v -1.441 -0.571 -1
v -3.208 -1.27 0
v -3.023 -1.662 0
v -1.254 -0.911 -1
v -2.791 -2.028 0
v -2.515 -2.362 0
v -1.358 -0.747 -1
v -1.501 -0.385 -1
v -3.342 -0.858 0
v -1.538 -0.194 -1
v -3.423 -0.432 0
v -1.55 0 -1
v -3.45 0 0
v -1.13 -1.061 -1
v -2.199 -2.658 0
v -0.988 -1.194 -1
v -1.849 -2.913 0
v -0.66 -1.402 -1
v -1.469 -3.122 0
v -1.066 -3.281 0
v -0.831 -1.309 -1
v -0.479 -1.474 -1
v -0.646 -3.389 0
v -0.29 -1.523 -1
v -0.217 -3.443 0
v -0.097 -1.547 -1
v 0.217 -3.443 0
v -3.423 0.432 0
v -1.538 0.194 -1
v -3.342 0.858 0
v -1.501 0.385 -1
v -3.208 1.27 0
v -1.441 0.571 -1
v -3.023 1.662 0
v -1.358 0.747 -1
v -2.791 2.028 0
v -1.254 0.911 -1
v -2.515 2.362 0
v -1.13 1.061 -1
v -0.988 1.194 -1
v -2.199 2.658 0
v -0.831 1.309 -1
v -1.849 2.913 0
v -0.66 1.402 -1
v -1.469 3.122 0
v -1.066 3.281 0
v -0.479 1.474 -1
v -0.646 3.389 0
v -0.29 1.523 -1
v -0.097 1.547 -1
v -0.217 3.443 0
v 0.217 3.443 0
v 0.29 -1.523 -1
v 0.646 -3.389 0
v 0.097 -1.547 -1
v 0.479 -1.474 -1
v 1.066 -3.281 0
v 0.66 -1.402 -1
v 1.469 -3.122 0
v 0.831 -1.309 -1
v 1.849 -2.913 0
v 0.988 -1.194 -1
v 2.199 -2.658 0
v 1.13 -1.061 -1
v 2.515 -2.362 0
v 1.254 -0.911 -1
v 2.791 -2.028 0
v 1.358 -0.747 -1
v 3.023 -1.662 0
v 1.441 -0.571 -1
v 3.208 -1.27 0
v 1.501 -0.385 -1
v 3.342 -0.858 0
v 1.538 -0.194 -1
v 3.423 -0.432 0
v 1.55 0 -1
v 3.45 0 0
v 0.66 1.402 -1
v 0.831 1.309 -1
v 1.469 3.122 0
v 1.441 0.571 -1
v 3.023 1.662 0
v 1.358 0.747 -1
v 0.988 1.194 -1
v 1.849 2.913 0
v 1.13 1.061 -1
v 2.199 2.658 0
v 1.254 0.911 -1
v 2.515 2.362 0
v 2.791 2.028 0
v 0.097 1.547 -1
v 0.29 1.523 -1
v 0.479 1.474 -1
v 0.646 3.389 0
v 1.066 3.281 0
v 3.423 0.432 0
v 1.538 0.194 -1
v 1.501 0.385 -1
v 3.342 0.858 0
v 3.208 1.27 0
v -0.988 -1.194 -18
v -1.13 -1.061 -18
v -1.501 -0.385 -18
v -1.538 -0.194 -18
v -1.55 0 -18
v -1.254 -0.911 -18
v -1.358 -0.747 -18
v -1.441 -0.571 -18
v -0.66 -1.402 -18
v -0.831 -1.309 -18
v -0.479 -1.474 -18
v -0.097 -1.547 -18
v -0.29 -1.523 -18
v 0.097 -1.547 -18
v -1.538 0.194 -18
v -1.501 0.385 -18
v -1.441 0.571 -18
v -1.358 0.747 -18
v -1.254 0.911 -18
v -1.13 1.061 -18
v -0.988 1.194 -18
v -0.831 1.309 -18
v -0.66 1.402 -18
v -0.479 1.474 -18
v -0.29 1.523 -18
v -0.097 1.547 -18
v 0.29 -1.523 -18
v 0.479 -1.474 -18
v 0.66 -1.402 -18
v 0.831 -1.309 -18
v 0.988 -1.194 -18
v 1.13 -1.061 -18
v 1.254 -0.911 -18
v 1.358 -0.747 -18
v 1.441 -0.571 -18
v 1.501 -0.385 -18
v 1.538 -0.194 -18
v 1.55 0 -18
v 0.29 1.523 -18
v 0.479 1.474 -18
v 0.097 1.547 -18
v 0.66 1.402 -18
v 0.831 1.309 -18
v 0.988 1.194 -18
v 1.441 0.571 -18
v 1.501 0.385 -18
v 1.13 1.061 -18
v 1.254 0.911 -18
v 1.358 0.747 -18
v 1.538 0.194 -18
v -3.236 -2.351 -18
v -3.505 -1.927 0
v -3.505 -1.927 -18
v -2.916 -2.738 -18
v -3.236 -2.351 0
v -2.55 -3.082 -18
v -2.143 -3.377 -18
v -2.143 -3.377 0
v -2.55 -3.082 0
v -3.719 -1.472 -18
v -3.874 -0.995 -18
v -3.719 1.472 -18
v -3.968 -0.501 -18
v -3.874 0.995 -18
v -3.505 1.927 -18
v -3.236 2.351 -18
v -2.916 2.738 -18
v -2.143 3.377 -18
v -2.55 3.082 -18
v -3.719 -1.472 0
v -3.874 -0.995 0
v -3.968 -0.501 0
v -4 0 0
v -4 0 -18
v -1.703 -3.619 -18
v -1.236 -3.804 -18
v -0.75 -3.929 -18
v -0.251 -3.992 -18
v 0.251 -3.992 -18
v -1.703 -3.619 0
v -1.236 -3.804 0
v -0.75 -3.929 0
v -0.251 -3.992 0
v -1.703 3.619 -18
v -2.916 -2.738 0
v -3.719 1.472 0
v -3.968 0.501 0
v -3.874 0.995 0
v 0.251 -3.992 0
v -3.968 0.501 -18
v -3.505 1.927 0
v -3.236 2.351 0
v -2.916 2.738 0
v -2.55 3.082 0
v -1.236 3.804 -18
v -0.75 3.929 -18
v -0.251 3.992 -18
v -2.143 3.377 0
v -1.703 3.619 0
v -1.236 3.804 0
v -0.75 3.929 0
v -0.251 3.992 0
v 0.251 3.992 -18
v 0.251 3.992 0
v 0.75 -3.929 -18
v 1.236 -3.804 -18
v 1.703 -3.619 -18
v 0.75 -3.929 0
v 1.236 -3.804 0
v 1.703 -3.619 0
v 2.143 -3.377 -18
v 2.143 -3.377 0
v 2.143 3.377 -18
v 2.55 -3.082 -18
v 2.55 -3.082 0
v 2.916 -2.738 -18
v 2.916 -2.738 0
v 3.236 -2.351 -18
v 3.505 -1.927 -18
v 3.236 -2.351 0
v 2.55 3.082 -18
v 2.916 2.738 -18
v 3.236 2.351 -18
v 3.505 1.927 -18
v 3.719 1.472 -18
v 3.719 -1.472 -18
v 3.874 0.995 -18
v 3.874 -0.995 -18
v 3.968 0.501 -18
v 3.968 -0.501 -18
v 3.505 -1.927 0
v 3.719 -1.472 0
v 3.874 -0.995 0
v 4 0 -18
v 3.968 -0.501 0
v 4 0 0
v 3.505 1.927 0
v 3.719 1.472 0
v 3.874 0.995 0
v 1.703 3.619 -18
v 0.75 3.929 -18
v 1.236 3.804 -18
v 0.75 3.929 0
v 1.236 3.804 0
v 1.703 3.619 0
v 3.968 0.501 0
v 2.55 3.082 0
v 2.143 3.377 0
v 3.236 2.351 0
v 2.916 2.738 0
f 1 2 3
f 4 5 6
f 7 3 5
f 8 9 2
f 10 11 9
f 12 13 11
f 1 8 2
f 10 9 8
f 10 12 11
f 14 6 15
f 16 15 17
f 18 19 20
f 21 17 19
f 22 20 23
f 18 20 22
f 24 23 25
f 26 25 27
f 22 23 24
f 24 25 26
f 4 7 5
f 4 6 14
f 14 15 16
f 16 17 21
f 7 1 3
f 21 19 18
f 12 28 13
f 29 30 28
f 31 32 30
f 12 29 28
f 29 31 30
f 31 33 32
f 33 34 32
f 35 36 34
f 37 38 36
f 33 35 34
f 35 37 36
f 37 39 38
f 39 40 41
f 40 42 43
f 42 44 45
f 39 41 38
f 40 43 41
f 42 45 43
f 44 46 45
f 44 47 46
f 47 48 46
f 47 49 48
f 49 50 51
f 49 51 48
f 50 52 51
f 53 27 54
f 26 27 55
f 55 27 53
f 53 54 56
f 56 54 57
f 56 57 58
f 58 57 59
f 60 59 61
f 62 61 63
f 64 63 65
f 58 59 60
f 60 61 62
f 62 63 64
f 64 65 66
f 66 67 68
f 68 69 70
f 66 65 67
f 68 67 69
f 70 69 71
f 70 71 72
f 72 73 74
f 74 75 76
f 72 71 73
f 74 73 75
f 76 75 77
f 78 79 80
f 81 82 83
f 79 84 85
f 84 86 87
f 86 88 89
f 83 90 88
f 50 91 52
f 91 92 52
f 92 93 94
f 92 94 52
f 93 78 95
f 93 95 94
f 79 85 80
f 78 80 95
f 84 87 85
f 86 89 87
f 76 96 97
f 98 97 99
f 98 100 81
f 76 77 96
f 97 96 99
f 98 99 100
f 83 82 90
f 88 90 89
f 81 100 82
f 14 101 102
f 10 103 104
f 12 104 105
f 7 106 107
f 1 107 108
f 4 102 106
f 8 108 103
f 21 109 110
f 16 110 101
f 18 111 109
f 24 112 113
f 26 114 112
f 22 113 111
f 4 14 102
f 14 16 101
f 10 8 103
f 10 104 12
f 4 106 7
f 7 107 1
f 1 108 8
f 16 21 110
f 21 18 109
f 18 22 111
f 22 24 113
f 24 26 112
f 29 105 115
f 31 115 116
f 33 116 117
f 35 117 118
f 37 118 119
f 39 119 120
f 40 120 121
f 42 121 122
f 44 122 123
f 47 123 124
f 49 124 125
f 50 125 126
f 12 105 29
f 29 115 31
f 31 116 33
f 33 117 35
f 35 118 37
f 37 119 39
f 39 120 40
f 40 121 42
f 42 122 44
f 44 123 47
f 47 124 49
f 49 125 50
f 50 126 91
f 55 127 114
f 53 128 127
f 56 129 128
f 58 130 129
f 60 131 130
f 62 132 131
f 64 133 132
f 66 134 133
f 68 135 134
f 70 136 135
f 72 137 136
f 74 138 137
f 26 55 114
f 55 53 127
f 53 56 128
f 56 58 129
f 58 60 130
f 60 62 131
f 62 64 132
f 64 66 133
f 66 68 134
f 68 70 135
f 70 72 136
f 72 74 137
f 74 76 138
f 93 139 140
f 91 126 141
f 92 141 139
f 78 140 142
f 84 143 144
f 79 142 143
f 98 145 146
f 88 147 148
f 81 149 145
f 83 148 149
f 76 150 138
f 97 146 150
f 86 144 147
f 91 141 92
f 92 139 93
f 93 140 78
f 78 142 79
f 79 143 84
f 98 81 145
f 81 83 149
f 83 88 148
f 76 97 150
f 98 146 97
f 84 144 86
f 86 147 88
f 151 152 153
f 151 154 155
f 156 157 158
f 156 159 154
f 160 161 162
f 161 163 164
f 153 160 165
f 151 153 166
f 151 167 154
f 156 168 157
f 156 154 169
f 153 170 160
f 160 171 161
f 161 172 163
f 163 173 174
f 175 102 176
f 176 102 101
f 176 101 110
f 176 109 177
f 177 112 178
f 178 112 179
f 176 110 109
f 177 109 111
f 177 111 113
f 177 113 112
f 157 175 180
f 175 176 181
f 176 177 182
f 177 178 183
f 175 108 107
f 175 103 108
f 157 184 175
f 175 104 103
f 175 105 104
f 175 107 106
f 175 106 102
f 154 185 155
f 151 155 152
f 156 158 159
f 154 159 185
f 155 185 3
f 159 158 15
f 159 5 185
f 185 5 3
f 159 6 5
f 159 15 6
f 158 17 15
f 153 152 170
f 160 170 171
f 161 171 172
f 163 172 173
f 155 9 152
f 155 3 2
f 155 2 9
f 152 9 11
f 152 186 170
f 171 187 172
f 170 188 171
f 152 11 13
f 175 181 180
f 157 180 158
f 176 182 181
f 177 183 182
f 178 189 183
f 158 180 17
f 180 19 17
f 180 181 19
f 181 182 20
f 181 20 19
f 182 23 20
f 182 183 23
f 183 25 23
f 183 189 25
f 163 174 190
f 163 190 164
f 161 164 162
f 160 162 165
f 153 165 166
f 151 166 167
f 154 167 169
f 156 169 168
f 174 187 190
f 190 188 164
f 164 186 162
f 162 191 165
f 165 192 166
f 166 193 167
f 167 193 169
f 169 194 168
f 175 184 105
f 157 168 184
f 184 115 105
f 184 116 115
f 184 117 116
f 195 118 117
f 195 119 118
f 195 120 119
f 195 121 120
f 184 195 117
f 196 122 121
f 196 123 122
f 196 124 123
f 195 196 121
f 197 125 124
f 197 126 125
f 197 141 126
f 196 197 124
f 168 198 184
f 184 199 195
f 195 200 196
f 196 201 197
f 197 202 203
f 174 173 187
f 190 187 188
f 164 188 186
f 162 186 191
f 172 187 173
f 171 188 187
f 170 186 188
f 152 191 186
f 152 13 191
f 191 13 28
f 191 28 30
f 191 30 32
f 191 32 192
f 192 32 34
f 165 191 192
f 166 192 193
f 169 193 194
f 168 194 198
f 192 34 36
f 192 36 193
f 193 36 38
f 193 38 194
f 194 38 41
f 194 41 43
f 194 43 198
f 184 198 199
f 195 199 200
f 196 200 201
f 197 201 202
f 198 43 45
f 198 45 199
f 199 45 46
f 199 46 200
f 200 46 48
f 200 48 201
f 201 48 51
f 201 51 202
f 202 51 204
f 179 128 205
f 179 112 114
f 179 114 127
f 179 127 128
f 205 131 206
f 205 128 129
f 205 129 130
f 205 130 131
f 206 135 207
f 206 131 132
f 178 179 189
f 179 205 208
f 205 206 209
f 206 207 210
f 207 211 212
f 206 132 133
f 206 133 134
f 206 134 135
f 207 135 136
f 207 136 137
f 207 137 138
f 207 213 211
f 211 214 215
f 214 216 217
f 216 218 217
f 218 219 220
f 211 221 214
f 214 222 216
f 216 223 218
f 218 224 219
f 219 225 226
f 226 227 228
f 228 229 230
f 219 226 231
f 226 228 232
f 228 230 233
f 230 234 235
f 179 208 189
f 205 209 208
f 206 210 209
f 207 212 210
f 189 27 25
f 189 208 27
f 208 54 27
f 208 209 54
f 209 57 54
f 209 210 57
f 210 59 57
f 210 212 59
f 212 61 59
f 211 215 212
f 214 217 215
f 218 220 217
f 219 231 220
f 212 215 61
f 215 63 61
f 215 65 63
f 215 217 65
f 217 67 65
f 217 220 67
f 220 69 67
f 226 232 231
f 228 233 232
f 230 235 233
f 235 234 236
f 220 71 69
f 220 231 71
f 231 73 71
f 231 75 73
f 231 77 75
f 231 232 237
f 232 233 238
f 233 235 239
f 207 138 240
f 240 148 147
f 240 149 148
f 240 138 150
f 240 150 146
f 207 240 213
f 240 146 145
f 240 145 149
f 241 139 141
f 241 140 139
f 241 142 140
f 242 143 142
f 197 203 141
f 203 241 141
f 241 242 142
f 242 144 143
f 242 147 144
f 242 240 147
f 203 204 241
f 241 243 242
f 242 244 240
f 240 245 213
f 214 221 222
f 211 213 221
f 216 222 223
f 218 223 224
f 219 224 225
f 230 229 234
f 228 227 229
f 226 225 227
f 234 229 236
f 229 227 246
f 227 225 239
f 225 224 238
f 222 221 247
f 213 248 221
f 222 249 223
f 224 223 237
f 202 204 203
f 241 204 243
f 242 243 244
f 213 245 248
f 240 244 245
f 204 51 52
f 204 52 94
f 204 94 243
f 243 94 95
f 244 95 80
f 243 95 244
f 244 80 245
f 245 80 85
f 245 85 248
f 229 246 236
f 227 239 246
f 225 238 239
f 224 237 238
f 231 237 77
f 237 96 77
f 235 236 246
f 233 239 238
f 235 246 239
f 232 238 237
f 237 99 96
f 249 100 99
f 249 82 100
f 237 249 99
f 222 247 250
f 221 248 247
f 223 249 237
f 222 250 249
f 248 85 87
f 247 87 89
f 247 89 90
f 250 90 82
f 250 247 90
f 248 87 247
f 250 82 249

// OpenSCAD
$fn = 50;

difference() {
	union() {
		translate(v = [0, 0, -18.0]) {
			cylinder(h = 21, r = 4.0);
		}
	}
	union() {
		translate(v = [0, 0, 0]) {
			rotate(a = [0, 0, 0]) {
				difference() {
					union() {
						translate(v = [0, 0, -21.0]) {
							cylinder(h = 21, r = 1.25);
						}
						translate(v = [0, 0, -1.0]) {
							cylinder(h = 1.0, r1 = 1.55, r2 = 3.45);
						}
						translate(v = [0, 0, -21.0]) {
							cylinder(h = 21, r = 1.55);
						}
						translate(v = [0, 0, -21.0]) {
							cylinder(h = 21, r = 1.25);
						}
					}
					union();
				}
			}
		}
		#cylinder(h = 3, r = 5.0);
	}
}
